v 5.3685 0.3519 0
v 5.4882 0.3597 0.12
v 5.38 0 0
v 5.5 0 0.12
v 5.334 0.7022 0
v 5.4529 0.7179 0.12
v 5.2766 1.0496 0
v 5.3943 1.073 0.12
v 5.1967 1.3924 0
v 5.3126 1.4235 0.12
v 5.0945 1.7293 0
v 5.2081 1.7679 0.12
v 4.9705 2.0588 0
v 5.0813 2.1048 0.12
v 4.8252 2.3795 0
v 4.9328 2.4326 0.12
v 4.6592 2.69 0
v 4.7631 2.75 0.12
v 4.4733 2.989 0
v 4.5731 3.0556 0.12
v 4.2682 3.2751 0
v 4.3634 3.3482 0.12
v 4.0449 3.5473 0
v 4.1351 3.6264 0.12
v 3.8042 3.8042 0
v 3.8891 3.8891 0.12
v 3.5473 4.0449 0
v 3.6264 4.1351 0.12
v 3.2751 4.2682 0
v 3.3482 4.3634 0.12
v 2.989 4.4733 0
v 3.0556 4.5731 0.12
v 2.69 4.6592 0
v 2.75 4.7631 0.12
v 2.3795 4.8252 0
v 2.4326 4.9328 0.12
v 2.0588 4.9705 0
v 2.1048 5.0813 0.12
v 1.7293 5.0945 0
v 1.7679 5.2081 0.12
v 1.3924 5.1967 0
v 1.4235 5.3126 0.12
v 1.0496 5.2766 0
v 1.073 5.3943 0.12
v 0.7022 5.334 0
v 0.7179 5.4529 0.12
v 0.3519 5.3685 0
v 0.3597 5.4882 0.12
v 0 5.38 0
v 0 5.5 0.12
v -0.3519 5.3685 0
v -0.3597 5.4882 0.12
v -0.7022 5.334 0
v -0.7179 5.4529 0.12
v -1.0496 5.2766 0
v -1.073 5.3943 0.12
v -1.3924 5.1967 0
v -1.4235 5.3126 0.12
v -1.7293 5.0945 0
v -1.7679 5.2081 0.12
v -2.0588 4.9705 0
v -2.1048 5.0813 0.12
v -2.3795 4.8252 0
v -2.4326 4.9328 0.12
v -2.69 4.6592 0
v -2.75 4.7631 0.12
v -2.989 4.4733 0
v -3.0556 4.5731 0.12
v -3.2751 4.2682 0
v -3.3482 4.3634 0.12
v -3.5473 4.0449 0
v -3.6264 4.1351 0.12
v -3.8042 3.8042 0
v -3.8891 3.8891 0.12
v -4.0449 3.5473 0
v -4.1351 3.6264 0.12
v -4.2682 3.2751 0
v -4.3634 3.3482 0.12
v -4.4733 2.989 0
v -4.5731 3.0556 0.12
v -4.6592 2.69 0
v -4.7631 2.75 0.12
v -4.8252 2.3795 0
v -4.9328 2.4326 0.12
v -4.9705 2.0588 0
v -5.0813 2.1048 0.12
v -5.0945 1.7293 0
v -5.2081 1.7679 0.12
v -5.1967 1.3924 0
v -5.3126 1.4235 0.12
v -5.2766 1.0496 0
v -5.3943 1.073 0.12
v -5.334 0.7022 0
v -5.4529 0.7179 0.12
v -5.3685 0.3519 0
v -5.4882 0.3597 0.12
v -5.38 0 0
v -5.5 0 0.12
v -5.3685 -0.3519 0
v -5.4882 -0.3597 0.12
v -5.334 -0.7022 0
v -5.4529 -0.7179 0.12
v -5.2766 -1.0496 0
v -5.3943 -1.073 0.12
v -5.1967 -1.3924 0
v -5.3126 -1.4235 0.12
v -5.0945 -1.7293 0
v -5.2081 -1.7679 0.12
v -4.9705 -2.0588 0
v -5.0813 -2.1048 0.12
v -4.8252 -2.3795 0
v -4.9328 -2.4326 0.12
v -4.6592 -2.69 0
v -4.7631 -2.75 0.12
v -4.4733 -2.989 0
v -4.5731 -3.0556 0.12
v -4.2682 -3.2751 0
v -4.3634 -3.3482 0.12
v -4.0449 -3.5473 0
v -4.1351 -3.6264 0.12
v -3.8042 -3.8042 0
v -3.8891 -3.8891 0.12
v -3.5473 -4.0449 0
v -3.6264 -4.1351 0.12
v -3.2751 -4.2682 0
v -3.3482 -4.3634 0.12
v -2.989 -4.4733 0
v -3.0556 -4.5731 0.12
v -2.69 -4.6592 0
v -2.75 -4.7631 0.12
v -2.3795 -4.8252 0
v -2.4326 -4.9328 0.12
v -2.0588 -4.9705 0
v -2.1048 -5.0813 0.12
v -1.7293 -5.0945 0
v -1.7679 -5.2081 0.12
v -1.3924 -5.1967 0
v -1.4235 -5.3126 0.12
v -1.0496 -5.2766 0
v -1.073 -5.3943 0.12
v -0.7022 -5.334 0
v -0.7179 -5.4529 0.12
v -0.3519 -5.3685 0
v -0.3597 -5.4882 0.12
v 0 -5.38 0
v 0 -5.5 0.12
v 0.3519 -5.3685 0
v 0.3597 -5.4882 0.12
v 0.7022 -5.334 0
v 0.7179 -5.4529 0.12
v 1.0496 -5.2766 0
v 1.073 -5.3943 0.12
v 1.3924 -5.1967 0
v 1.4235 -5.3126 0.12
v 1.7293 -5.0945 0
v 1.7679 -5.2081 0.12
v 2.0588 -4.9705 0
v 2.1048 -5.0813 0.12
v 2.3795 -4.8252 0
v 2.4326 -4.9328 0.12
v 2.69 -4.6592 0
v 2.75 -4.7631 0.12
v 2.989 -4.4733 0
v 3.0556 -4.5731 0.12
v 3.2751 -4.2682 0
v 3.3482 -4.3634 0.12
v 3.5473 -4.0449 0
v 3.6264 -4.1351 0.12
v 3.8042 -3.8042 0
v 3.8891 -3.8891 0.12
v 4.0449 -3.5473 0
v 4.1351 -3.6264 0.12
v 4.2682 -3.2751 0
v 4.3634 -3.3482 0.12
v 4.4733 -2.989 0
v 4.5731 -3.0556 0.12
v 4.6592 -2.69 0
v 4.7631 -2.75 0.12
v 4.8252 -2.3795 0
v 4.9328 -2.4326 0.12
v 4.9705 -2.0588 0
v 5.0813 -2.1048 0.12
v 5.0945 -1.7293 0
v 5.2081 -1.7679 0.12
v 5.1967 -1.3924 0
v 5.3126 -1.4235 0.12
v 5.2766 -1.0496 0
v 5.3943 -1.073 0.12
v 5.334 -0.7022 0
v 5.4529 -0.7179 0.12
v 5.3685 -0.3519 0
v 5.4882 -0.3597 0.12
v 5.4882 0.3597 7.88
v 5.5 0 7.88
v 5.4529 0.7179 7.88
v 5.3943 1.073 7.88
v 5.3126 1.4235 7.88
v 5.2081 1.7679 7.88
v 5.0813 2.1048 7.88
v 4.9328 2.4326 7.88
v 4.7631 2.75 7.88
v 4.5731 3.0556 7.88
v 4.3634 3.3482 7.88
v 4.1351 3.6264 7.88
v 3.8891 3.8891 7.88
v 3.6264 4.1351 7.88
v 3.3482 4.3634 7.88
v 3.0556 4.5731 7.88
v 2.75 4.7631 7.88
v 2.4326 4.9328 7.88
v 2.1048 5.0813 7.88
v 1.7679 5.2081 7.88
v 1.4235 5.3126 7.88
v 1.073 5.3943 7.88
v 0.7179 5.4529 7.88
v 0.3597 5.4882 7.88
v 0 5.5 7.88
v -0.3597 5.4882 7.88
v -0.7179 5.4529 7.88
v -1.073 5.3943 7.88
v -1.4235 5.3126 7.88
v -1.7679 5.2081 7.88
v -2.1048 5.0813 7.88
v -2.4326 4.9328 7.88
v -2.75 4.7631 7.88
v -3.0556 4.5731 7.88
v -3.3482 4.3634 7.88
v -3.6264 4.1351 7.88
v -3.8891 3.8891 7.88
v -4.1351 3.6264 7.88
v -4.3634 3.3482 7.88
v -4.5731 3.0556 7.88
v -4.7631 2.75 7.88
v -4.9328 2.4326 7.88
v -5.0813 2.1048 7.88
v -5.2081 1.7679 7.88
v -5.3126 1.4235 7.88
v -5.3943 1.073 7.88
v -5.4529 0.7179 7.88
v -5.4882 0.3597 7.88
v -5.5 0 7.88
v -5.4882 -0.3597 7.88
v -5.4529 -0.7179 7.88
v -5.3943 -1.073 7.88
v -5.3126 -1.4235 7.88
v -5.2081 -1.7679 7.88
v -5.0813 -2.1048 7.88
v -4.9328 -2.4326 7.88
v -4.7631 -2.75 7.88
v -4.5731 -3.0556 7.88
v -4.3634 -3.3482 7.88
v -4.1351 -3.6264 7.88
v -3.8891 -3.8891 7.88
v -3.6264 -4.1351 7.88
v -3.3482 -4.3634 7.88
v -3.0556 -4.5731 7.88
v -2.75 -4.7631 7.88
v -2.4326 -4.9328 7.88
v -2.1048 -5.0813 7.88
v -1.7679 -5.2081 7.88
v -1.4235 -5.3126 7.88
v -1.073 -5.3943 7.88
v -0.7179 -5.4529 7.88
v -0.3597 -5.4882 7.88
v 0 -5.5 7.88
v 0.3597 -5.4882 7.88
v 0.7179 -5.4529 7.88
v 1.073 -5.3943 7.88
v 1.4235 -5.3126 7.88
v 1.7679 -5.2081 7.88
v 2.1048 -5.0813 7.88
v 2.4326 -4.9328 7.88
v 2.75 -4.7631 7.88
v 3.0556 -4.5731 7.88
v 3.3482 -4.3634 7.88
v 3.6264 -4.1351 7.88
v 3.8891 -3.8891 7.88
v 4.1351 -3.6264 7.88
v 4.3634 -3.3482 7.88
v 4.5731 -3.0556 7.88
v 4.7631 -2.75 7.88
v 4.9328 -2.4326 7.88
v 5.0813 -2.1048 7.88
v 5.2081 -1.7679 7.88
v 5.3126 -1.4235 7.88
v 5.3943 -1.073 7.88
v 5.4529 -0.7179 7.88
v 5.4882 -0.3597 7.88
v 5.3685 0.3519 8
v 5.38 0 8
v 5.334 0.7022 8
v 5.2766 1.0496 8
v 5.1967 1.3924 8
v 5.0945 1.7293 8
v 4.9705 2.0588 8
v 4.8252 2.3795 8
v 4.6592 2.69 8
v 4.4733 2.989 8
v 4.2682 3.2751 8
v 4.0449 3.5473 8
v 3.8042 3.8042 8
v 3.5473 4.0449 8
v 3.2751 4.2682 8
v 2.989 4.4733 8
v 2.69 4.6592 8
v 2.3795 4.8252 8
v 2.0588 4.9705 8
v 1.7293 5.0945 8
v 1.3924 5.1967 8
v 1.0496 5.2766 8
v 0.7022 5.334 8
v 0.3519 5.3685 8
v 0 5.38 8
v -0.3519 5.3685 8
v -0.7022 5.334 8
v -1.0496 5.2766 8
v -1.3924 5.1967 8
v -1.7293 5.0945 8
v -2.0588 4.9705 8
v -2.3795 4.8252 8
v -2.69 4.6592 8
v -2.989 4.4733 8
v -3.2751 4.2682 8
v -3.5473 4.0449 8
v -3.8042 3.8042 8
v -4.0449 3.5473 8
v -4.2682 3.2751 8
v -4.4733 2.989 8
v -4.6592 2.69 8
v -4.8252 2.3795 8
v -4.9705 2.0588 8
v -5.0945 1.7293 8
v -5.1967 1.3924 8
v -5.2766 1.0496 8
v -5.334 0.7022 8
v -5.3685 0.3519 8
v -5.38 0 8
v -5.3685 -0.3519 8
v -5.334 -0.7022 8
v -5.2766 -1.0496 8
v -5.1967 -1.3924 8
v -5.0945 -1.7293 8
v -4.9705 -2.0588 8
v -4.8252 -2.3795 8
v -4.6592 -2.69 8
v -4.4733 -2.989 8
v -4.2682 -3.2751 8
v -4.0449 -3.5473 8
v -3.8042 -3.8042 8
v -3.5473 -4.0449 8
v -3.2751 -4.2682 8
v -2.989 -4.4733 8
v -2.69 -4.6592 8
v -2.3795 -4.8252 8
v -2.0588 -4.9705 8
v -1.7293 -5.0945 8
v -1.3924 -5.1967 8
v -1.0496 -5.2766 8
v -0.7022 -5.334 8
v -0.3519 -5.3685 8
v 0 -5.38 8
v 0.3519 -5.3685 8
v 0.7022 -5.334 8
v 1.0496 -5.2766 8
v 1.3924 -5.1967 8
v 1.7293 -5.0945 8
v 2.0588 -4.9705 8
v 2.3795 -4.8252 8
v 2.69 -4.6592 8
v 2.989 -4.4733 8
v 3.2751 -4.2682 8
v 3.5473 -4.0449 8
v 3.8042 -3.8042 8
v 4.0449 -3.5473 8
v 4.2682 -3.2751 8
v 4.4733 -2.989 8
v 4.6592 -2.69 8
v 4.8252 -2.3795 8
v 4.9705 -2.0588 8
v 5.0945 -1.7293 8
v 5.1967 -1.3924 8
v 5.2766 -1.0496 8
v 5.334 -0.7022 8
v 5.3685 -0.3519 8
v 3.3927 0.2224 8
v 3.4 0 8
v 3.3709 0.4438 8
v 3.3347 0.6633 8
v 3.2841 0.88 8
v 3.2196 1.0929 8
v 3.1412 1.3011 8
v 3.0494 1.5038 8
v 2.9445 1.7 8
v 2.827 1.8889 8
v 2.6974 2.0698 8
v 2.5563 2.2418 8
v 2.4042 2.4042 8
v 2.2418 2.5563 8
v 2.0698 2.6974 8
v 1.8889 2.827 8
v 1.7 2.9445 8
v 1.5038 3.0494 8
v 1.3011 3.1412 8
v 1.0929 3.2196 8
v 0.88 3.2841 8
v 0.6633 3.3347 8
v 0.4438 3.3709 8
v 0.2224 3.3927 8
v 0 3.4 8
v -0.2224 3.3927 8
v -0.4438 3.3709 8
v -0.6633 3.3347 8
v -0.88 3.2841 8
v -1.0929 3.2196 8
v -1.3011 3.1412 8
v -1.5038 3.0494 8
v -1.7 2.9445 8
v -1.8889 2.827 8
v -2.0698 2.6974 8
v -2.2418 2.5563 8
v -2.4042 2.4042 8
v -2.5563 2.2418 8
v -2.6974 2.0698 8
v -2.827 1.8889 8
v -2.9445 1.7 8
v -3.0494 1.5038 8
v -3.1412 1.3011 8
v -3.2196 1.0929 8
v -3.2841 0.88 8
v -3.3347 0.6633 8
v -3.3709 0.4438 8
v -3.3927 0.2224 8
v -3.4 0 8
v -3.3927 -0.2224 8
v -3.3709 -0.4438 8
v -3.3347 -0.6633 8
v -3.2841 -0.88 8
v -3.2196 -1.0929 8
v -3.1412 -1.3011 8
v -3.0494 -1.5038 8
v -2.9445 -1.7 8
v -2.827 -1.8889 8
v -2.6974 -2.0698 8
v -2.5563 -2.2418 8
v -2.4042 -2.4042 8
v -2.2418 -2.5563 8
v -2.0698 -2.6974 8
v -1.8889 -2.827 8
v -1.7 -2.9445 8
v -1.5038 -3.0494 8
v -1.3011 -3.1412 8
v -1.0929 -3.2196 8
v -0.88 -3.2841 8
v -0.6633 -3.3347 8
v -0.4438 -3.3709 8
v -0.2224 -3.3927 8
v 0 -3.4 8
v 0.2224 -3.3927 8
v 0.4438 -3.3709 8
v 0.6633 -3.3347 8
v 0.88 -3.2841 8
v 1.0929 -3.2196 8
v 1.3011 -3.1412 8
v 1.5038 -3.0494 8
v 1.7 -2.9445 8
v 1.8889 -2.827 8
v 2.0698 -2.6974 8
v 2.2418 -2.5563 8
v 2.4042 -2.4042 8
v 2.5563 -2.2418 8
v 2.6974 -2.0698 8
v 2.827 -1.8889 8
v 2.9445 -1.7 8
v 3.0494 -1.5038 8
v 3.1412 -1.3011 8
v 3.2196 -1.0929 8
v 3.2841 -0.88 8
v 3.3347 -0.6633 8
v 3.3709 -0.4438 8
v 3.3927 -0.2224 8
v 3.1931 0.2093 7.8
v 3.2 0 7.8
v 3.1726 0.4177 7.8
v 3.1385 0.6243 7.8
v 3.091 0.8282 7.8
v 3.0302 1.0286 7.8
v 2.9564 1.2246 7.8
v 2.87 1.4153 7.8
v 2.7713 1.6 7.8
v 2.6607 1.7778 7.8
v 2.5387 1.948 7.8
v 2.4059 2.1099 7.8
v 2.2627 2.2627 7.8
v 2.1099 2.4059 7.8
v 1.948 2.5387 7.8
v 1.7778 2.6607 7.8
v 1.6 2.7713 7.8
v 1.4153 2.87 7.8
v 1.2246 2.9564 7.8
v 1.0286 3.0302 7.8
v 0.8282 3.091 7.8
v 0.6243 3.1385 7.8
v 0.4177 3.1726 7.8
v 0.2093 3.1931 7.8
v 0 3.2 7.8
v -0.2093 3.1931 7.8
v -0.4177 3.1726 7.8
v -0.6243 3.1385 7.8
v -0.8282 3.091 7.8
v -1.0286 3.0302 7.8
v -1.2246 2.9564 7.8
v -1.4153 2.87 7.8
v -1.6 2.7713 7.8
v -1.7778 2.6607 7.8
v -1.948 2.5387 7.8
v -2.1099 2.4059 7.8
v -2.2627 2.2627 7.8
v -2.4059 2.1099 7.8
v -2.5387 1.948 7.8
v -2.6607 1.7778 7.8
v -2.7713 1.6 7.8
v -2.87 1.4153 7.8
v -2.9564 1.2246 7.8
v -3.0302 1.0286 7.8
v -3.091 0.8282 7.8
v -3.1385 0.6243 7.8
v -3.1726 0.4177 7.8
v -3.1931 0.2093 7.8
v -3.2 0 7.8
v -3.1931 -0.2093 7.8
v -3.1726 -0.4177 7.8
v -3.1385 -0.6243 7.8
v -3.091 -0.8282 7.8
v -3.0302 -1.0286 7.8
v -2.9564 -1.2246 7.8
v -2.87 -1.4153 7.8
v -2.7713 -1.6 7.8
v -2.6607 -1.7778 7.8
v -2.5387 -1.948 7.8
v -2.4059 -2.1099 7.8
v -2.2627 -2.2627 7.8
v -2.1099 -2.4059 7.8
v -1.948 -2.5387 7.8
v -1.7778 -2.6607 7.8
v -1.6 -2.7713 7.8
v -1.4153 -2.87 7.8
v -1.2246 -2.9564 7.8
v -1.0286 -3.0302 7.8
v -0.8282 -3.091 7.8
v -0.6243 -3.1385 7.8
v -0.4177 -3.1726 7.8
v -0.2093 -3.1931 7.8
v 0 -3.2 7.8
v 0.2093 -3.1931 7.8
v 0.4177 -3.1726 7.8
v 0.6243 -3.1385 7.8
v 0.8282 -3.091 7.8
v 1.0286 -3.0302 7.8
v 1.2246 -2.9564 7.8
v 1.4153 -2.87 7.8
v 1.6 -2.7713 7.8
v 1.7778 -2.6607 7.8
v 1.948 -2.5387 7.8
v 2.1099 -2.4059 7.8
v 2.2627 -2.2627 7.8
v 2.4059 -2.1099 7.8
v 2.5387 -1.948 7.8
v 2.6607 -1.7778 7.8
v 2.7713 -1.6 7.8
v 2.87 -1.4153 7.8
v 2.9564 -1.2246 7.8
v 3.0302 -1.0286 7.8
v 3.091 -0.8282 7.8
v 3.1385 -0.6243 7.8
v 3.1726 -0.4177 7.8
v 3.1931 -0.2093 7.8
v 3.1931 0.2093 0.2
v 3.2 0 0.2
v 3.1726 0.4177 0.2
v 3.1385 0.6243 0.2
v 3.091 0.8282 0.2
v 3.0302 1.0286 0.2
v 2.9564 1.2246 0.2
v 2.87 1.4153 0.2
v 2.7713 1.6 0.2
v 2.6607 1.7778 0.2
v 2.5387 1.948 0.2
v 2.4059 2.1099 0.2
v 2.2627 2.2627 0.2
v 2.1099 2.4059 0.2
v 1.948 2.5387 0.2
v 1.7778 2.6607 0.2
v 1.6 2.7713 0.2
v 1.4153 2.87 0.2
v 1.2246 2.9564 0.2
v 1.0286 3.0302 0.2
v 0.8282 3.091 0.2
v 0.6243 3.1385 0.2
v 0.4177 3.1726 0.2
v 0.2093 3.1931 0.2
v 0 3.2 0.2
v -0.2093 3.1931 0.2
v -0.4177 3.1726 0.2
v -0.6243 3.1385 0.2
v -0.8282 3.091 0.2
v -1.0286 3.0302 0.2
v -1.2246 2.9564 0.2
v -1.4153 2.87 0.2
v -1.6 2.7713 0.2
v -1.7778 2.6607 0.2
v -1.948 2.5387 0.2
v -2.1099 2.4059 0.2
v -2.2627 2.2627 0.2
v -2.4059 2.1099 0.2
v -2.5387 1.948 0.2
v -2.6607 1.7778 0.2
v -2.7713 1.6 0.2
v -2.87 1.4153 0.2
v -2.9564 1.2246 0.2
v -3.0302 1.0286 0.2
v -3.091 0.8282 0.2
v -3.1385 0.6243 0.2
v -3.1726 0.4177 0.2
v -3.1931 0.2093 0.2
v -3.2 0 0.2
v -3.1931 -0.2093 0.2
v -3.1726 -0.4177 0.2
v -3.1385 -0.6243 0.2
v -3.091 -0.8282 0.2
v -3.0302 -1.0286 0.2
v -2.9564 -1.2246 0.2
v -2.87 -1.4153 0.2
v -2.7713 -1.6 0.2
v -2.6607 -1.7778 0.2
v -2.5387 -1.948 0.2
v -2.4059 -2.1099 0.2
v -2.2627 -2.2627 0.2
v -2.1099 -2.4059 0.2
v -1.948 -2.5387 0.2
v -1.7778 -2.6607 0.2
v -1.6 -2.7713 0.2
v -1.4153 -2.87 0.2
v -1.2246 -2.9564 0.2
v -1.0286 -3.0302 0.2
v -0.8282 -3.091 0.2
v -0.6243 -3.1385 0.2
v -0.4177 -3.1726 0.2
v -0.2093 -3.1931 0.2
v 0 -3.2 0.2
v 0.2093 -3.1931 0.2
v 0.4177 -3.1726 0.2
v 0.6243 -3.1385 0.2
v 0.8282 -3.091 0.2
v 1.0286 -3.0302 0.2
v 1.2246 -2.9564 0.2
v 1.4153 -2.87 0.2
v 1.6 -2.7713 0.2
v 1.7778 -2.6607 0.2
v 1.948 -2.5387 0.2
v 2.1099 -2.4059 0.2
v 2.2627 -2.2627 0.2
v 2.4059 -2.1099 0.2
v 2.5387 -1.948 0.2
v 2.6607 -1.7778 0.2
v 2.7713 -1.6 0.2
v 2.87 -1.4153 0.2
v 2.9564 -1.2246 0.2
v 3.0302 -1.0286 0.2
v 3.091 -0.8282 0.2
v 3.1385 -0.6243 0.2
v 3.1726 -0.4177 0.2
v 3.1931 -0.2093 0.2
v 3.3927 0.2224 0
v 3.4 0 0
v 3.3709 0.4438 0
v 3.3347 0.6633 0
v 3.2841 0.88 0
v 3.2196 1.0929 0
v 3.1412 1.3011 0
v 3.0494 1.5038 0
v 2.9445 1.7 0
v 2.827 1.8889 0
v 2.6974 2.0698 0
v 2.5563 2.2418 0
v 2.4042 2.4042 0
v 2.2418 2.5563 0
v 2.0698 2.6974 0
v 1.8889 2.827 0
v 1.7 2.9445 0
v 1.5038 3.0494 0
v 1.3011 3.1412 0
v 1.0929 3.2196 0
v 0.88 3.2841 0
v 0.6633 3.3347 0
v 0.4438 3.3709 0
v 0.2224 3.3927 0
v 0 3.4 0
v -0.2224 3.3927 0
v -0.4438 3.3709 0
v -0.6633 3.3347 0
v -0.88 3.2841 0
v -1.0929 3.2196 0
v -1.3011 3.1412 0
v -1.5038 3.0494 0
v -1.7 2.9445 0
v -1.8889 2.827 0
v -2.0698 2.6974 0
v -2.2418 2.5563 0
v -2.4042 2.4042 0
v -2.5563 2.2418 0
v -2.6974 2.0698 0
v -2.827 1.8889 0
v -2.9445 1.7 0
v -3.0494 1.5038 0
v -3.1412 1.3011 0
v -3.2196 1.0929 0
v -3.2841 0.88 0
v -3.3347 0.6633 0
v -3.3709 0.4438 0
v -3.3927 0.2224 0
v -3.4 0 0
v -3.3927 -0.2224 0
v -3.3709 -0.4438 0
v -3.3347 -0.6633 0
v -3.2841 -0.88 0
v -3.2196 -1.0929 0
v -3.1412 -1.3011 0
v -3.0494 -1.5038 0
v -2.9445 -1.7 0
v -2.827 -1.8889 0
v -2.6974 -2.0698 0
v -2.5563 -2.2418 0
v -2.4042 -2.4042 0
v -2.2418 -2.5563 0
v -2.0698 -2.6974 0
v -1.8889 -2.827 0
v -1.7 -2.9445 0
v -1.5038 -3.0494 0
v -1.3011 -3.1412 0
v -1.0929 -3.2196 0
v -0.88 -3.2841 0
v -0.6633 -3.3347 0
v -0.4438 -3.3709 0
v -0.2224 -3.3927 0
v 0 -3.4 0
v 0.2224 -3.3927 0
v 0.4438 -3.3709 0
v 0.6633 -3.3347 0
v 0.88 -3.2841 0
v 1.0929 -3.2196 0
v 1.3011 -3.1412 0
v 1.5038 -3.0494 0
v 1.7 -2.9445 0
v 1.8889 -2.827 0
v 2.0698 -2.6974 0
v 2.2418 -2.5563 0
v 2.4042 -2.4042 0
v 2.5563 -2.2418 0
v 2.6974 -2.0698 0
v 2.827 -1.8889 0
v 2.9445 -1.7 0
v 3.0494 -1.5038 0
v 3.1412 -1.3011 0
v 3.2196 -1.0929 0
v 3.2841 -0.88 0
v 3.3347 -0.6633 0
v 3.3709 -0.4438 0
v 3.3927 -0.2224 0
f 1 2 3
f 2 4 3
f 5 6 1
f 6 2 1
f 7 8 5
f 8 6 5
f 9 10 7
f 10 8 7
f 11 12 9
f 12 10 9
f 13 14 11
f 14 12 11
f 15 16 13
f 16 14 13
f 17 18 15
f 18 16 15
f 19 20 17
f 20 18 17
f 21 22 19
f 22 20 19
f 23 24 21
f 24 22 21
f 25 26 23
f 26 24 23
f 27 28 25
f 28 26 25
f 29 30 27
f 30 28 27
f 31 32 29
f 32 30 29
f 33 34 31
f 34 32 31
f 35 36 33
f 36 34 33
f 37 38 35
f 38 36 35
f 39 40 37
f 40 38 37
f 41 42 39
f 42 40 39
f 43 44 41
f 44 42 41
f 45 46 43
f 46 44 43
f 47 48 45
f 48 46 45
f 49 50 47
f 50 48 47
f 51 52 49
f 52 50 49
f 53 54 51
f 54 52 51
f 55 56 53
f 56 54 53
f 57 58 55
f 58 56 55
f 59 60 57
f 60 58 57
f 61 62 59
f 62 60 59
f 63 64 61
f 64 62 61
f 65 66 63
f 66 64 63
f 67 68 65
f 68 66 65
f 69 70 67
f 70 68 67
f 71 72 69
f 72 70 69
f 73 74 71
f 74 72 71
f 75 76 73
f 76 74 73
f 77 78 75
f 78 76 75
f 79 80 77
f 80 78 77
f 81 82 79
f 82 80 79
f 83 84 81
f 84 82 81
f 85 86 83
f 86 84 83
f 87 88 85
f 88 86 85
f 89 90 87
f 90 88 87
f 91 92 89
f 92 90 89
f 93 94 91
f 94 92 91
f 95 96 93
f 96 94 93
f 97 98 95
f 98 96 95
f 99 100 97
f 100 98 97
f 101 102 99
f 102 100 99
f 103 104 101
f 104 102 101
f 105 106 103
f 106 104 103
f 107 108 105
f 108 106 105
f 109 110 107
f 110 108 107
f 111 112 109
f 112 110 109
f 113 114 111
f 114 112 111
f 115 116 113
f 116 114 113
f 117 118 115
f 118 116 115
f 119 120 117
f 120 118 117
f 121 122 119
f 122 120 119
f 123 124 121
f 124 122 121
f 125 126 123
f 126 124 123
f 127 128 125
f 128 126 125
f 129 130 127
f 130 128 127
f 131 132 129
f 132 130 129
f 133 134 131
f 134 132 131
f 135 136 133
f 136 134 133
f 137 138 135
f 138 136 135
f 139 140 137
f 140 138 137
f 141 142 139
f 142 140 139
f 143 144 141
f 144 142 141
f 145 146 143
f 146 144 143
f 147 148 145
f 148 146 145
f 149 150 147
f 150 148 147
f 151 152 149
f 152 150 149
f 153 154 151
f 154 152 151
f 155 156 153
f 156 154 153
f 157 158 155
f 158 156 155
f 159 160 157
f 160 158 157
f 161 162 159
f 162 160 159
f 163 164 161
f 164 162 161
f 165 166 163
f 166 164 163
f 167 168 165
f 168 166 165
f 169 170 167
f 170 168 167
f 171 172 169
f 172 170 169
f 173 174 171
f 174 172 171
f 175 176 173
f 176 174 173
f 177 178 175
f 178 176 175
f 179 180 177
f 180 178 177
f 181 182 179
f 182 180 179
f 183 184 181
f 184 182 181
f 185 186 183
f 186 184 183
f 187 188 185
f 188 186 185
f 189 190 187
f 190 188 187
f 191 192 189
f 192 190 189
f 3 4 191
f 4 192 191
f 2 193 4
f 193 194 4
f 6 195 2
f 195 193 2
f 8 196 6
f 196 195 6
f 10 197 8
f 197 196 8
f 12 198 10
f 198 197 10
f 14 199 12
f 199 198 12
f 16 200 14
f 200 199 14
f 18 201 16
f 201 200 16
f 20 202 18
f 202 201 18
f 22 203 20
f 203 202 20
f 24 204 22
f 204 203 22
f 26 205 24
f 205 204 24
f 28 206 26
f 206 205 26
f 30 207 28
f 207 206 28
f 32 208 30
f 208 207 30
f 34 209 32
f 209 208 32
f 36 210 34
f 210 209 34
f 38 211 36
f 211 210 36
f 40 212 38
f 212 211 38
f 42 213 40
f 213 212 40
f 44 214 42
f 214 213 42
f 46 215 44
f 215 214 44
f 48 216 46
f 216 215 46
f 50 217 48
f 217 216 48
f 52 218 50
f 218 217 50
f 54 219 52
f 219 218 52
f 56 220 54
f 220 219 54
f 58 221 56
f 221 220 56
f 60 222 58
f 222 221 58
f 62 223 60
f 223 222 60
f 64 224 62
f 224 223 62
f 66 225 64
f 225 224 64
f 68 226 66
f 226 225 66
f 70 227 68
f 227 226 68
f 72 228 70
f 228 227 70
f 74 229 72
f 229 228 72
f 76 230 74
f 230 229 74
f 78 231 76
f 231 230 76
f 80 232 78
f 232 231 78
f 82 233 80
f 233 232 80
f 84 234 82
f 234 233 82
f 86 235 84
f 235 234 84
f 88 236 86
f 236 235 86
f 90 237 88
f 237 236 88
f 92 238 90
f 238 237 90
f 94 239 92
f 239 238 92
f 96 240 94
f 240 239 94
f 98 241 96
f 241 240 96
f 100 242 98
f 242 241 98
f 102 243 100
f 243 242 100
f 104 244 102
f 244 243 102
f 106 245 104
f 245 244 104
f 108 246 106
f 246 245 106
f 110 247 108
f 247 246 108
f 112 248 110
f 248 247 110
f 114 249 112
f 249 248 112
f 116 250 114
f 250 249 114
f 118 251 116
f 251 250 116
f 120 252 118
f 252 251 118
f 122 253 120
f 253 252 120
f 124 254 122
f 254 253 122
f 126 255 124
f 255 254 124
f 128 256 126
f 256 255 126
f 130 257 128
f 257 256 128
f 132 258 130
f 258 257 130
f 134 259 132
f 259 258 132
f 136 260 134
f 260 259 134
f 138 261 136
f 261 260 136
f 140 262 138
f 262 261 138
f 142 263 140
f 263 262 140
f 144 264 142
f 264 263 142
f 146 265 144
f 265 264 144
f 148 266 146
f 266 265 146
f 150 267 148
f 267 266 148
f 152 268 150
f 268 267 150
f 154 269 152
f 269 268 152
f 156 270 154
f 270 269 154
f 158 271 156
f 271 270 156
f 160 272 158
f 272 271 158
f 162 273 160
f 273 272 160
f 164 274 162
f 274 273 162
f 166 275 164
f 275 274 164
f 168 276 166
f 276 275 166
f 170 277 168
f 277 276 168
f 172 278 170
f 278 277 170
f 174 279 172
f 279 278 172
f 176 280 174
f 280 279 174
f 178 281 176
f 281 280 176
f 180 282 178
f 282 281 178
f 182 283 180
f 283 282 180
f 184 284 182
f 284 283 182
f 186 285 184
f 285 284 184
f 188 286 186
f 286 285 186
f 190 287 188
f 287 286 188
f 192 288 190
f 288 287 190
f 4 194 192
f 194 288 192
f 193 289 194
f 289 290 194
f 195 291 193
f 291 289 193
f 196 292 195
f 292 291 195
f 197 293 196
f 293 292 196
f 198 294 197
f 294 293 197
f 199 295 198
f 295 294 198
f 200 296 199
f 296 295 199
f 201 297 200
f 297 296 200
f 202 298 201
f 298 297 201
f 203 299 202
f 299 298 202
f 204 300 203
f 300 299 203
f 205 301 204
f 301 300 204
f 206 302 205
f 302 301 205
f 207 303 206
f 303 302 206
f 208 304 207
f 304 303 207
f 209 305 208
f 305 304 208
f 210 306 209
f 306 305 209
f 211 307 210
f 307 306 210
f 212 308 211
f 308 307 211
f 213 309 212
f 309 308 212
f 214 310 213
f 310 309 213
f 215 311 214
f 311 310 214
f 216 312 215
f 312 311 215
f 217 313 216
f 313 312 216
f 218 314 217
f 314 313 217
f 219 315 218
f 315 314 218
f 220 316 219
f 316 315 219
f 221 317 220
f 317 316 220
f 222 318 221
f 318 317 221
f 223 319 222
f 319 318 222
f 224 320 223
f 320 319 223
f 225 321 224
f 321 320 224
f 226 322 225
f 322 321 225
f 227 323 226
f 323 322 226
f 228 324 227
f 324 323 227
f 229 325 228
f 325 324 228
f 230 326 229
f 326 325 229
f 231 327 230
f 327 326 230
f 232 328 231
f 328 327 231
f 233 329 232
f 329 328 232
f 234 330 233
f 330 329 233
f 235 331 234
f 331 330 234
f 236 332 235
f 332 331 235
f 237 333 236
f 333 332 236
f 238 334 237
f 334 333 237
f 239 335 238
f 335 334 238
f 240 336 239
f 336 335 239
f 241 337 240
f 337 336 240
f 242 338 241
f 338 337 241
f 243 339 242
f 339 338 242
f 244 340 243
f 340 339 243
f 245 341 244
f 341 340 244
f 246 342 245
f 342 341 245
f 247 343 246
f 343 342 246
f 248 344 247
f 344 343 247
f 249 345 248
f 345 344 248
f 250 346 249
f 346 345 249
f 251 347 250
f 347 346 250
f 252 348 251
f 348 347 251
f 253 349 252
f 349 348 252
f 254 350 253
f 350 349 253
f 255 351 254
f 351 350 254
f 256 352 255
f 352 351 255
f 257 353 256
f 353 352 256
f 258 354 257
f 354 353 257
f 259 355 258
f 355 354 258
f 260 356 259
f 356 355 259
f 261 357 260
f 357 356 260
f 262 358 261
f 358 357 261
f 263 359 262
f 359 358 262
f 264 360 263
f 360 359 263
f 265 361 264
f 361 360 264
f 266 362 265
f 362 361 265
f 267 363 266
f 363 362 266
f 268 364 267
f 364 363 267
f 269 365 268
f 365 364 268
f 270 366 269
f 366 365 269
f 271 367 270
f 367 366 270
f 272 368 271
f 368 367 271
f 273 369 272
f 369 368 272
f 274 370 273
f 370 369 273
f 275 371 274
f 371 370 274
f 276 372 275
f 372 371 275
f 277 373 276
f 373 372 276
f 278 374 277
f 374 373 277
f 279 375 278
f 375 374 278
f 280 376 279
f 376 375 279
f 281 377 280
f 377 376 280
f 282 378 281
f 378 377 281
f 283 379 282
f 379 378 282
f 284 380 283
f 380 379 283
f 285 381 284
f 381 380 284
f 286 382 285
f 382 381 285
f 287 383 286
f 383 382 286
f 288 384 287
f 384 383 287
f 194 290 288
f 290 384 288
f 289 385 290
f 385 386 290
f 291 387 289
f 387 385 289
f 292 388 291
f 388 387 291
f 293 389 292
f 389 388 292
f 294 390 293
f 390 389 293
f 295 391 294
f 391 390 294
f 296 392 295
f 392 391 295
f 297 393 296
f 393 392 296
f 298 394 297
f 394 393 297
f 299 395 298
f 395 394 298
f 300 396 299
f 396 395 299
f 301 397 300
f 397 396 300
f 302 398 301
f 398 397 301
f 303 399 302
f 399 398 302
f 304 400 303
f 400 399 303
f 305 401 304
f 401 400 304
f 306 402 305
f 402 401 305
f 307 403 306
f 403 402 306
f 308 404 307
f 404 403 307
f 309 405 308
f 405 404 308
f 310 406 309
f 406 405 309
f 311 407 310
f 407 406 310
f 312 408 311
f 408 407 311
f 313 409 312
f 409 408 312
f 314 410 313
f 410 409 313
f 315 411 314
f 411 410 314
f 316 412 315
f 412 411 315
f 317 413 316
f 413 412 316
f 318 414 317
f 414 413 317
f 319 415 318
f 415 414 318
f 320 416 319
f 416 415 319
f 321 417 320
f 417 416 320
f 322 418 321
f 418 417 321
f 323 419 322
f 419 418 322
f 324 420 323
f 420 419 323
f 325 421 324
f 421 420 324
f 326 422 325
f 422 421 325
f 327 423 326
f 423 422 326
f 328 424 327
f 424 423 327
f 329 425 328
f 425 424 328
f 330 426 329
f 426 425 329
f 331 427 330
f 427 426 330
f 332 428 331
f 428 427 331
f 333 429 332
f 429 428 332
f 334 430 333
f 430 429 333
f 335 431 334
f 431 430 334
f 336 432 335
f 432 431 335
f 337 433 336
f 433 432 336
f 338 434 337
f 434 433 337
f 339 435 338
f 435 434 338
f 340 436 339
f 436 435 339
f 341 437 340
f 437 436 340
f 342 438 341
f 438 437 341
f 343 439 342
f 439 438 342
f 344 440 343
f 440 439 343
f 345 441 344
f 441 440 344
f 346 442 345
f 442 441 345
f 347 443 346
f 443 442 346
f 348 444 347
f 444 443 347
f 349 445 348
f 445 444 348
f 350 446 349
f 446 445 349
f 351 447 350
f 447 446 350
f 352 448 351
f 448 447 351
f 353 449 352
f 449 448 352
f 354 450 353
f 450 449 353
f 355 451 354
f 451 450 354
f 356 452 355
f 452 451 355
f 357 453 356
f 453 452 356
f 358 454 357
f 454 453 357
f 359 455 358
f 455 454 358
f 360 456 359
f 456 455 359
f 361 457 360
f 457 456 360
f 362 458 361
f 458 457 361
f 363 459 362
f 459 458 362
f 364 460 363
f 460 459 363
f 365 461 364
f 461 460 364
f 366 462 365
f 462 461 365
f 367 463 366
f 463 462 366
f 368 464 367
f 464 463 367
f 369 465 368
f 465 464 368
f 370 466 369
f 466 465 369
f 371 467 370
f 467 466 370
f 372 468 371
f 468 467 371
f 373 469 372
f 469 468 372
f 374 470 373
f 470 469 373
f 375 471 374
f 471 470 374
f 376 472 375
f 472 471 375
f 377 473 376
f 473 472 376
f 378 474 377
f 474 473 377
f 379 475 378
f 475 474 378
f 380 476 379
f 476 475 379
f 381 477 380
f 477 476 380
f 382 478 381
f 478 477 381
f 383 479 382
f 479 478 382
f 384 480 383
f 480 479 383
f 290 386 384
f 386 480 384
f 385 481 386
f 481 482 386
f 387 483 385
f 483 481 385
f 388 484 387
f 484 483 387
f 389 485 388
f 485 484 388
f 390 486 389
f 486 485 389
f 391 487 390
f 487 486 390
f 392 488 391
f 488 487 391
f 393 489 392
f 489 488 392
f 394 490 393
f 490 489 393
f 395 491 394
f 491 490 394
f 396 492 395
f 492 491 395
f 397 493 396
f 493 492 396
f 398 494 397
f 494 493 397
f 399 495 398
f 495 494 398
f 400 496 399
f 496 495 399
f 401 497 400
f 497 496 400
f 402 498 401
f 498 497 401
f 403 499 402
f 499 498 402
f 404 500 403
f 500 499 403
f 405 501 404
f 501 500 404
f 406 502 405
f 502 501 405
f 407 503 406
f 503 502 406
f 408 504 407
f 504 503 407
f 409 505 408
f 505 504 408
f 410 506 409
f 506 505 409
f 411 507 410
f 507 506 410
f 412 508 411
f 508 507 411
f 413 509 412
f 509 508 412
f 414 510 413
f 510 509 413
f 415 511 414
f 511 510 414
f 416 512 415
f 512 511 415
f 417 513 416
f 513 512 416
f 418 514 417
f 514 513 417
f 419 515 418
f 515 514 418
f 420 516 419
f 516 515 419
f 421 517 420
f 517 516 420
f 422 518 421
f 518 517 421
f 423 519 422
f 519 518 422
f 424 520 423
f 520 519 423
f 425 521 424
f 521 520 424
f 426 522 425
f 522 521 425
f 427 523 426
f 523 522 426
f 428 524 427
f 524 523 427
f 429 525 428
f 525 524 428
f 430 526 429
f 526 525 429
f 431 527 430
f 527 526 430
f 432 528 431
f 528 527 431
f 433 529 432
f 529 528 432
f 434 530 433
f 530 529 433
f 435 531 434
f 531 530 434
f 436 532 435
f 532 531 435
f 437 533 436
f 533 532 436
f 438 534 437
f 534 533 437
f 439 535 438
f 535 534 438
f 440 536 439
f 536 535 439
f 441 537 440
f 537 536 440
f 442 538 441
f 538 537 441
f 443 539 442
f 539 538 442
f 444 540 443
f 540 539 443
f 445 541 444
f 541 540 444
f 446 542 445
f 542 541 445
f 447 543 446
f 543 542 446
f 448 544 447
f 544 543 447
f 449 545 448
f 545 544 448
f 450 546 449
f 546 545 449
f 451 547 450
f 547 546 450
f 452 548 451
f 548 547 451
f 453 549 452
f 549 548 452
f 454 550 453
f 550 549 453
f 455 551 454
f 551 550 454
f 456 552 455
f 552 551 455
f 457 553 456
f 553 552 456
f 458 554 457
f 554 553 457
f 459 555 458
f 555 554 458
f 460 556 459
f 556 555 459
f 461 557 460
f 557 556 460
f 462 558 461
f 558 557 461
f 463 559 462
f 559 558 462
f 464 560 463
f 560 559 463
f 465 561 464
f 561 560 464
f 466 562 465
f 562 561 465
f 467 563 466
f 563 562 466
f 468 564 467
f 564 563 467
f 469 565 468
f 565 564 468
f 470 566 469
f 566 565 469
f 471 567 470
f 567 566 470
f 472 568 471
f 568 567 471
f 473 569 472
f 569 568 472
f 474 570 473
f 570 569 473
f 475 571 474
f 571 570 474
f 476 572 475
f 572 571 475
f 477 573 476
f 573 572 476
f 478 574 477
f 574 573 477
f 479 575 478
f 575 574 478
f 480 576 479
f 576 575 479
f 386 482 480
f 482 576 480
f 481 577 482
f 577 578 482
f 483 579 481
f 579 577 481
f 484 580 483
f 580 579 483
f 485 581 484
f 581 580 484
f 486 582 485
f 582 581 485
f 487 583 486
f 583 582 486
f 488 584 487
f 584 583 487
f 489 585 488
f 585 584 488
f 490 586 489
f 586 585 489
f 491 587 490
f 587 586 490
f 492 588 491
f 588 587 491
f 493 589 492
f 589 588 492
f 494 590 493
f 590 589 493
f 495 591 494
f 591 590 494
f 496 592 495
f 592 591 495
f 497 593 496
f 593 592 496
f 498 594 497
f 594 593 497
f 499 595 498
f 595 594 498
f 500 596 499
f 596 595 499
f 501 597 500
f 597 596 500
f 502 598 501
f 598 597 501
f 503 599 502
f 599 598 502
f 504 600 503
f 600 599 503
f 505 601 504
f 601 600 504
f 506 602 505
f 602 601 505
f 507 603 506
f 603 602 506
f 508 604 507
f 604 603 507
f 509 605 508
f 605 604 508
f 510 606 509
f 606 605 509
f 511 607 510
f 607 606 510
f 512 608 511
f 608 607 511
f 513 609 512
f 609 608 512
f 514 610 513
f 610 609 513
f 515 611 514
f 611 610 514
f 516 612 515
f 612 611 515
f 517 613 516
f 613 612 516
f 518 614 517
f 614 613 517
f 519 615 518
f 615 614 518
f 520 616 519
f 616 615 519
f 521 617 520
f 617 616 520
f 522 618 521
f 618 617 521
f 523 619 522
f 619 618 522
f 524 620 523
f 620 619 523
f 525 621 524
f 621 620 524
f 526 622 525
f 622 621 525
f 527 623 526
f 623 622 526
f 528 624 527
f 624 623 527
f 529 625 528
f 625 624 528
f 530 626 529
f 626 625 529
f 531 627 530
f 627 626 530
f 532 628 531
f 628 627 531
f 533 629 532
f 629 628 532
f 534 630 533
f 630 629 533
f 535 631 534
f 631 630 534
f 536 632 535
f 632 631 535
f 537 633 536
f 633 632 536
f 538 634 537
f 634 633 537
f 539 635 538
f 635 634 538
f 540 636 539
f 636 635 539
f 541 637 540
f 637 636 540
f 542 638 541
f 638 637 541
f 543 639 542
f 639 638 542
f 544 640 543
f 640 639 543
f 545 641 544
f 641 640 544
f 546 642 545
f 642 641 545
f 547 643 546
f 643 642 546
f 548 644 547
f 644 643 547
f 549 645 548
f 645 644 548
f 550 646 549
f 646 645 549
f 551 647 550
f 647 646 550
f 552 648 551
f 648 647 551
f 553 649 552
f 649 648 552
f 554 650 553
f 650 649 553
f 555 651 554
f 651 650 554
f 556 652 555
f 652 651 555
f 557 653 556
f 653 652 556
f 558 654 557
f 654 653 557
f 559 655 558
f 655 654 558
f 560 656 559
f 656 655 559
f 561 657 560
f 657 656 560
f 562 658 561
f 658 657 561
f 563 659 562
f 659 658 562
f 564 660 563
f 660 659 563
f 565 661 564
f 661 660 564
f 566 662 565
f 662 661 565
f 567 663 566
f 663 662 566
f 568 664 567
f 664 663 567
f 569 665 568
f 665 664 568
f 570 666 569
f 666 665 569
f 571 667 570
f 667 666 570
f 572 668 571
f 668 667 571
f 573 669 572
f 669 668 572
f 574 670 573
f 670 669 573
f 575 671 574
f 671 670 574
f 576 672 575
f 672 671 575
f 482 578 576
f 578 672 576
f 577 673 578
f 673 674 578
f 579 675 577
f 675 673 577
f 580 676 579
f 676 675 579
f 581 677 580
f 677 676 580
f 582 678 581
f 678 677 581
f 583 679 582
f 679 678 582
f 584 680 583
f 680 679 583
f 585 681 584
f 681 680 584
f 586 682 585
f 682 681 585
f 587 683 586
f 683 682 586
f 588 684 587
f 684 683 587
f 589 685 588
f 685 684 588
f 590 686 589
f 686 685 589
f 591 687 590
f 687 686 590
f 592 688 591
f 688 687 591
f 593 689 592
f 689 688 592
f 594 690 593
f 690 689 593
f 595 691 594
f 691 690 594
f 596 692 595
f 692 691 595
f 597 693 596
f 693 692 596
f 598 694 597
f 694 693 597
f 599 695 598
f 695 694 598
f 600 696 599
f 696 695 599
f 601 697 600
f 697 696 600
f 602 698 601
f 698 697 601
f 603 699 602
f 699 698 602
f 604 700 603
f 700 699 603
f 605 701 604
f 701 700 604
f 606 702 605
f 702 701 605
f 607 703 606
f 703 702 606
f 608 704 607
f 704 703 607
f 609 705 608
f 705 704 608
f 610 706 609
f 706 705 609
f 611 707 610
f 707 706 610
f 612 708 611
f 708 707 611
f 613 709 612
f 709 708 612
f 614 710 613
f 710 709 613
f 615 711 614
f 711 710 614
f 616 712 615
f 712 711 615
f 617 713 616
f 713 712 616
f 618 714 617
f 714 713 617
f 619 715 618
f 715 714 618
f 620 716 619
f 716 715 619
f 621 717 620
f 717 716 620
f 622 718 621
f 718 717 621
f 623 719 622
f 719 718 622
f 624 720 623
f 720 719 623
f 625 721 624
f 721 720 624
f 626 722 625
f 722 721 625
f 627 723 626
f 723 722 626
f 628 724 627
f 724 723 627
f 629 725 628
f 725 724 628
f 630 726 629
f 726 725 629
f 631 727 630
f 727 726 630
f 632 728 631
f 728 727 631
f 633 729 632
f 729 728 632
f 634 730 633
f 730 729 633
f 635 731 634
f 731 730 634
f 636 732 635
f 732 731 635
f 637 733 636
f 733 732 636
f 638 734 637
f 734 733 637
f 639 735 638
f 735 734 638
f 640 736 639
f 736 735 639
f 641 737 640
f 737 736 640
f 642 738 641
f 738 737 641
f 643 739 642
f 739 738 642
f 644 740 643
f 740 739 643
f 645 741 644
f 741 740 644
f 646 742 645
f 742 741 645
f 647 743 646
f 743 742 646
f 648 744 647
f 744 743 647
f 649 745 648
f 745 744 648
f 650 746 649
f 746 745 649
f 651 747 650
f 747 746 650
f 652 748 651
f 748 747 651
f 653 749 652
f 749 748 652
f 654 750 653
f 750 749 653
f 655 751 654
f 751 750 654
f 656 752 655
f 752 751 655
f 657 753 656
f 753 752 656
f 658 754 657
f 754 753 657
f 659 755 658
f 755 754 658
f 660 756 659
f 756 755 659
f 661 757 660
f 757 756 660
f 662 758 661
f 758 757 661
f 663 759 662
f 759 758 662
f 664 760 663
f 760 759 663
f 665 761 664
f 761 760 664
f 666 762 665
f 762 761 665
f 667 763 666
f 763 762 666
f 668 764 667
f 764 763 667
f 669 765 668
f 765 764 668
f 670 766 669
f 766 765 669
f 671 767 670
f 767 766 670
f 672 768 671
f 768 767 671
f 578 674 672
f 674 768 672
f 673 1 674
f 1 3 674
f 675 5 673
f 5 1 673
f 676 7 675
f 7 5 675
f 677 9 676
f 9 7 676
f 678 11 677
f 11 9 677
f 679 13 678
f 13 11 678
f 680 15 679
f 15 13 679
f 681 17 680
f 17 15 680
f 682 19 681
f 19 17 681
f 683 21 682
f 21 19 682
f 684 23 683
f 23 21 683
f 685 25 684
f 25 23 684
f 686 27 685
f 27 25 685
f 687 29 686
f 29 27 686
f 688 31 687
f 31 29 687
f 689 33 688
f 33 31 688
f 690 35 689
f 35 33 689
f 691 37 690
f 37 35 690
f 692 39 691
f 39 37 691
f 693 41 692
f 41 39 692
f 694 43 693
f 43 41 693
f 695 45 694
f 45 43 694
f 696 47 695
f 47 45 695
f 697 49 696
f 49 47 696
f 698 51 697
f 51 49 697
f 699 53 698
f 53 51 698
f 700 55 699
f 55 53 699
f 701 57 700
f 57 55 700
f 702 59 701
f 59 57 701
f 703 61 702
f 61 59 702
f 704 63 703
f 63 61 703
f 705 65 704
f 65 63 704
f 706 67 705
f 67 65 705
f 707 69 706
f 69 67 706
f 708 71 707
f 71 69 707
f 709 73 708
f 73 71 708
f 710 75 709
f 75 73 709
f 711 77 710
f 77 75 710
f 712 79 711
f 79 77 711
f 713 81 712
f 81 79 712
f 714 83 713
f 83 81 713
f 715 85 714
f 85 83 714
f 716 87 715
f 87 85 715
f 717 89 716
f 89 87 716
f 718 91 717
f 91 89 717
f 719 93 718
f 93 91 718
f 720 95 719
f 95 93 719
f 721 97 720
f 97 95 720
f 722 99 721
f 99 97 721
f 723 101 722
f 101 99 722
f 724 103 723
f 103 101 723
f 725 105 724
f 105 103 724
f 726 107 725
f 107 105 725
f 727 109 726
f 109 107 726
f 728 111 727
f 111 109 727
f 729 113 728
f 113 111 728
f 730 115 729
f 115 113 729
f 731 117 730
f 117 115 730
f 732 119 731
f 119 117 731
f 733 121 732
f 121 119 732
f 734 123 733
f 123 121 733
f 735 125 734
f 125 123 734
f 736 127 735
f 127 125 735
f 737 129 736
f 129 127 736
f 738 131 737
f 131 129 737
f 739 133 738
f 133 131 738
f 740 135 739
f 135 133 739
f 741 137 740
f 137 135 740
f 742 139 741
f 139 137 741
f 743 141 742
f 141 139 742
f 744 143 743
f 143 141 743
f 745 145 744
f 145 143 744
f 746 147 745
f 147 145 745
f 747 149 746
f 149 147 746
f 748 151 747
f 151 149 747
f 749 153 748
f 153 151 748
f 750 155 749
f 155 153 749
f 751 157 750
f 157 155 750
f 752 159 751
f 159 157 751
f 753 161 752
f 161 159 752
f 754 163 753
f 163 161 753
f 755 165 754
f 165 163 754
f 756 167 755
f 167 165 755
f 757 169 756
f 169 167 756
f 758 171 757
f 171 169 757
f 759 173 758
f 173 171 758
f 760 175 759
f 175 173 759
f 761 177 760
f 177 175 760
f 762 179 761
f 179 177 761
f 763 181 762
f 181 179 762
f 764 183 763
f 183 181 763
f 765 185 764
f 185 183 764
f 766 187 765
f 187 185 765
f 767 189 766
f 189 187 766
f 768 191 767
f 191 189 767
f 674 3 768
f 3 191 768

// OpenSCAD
// OOMP generic catalogue model; units: mm.
// Stud length is additional to body depth. Tapping depths are model assumptions.
variant = "full"; // [full, display]
family = "spacer";
connection_type = "plain";
depth_mm = 8;
stud_length_mm = 0;
tapped_depth_mm = 0;
bore_mm = 6.4;
outer_diameter_mm = 11;
across_flats_mm = 6;
thread_nominal_diameter_mm = 3;
thread_pitch_mm = 0.5;
edge_chamfer_mm = 0.12;
mouth_chamfer_mm = 0.2;
angular_segments = 96;
samples_per_pitch = 16;

// Boundary travels up the outside, then down any tapped/plain bore.
// Equal-height rings at shoulders form the annular shoulder faces.
n = angular_segments;
threaded = family == "standoff";
has_stud = connection_type == "stud_to_tapped" || connection_type == "stud_to_stud";
two_studs = connection_type == "stud_to_stud";
through = !threaded || connection_type == "tapped_to_tapped";
pitch = thread_pitch_mm;
diameter = threaded ? thread_nominal_diameter_mm : bore_mm;
minor = diameter - 5*sqrt(3)*pitch/8;
transition = mouth_chamfer_mm + (threaded ? 5*sqrt(3)*pitch/16 : 0);
tip_chamfer = mouth_chamfer_mm + 17*sqrt(3)*pitch/48;
function sorted(v) = len(v)<=1 ? v : let(p=v[0])
    concat(sorted([for(x=v) if(x<p-1e-8) x]), [p], sorted([for(x=v) if(x>p+1e-8) x]));
function reverse(v) = [for(i=[len(v)-1:-1:0]) v[i]];
function theta(i) = i*360/n;
function fract(x) = x-floor(x);
function phase_distance(i,z) = abs(fract(z/pitch-theta(i)/360+0.5)-0.5);
function thread_r(i,z) = minor/2 + min(5*sqrt(3)*pitch/16,
    max(0,(phase_distance(i,z)-0.125)*pitch*sqrt(3)));
function stud_r(i,z,tip) = min(diameter/2 - (variant=="full" ?
    min(17*sqrt(3)*pitch/48,max(0,(phase_distance(i,z)-0.0625)*pitch*sqrt(3))) : 0),
    diameter/2-tip_chamfer+abs(z-tip));
function body_r(i,z) = (threaded ? across_flats_mm/2/cos(theta(i)%60-30) : outer_diameter_mm/2)
    - max(0,edge_chamfer_mm-min(z,depth_mm-z));
function bore_r(i,z) = max(threaded ? (variant=="full" ? thread_r(i,z) : minor/2) : diameter/2,
    diameter/2+mouth_chamfer_mm-(through ? min(z,depth_mm-z) : depth_mm-z));
function stud_z(a,b,tip) = let(count=variant=="full" ? ceil(stud_length_mm/pitch*samples_per_pitch) : 1)
    sorted(concat([for(i=[0:count]) a+(b-a)*i/count], [tip==a ? tip+tip_chamfer : tip-tip_chamfer]));
body_z = sorted([0,edge_chamfer_mm,depth_mm-edge_chamfer_mm,depth_mm]);
low = through ? 0 : depth_mm-tapped_depth_mm;
count = threaded && variant=="full" ? ceil((depth_mm-low)/pitch*samples_per_pitch) : 1;
bore_z = two_studs ? [] : reverse(sorted(concat(
    [for(i=[0:count]) low+(depth_mm-low)*i/count],
    [depth_mm-mouth_chamfer_mm,depth_mm-transition],
    through ? [mouth_chamfer_mm,transition] : [])));
// Ring descriptors: [height, kind, tip]. Kind: 0 body, 1 stud, 2 bore.
rings = concat(
    has_stud ? [for(z=stud_z(-stud_length_mm,0,-stud_length_mm)) [z,1,-stud_length_mm]] : [],
    [for(z=body_z) [z,0,0]],
    two_studs ? [for(z=stud_z(depth_mm,depth_mm+stud_length_mm,depth_mm+stud_length_mm)) [z,1,depth_mm+stud_length_mm]] : [],
    [for(z=bore_z) [z,2,0]]);
function radius(i,ring) = ring[1]==0 ? body_r(i,ring[0]) :
    ring[1]==1 ? stud_r(i,ring[0],ring[2]) : bore_r(i,ring[0]);
points = concat([for(ring=rings) for(i=[0:n-1])
    [radius(i,ring)*cos(theta(i)),radius(i,ring)*sin(theta(i)),ring[0]]],
    through ? [] : [[0,0,rings[0][0]],[0,0,rings[len(rings)-1][0]]]);
center = len(rings)*n;
last = (len(rings)-1)*n;
// OpenSCAD winding is opposite to STL winding.
faces = concat(
    [for(j=[0:len(rings)-(through ? 1 : 2)]) for(i=[0:n-1]) each
        let(a=j*n+i,b=j*n+(i+1)%n,c=((j+1)%len(rings))*n+(i+1)%n,d=((j+1)%len(rings))*n+i)
        [[a,c,b],[a,d,c]]],
    through ? [] : [for(i=[0:n-1]) each let(k=(i+1)%n)
        [[center,i,k],[center+1,last+k,last+i]]]);
assert(family=="spacer" || family=="standoff");
assert(!threaded || connection_type=="tapped_to_tapped" || has_stud);
assert(depth_mm>0 && diameter>0 && pitch>0);
assert(variant=="full" || variant=="display");
assert(n>=24 && n%12==0 && samples_per_pitch>=8);
assert(mouth_chamfer_mm>0 && mouth_chamfer_mm<depth_mm/2);
assert(edge_chamfer_mm>=0 && edge_chamfer_mm<depth_mm/2);
assert(diameter+4*max(mouth_chamfer_mm,edge_chamfer_mm) < (threaded ? across_flats_mm : outer_diameter_mm));
assert(!has_stud || stud_length_mm>2*mouth_chamfer_mm);
assert(!through || !threaded || 2*transition<depth_mm);
assert(connection_type!="stud_to_tapped" || (tapped_depth_mm>transition && tapped_depth_mm<depth_mm));
color([0.86,0.85,0.81]) polyhedron(points=points,faces=faces,convexity=20);
